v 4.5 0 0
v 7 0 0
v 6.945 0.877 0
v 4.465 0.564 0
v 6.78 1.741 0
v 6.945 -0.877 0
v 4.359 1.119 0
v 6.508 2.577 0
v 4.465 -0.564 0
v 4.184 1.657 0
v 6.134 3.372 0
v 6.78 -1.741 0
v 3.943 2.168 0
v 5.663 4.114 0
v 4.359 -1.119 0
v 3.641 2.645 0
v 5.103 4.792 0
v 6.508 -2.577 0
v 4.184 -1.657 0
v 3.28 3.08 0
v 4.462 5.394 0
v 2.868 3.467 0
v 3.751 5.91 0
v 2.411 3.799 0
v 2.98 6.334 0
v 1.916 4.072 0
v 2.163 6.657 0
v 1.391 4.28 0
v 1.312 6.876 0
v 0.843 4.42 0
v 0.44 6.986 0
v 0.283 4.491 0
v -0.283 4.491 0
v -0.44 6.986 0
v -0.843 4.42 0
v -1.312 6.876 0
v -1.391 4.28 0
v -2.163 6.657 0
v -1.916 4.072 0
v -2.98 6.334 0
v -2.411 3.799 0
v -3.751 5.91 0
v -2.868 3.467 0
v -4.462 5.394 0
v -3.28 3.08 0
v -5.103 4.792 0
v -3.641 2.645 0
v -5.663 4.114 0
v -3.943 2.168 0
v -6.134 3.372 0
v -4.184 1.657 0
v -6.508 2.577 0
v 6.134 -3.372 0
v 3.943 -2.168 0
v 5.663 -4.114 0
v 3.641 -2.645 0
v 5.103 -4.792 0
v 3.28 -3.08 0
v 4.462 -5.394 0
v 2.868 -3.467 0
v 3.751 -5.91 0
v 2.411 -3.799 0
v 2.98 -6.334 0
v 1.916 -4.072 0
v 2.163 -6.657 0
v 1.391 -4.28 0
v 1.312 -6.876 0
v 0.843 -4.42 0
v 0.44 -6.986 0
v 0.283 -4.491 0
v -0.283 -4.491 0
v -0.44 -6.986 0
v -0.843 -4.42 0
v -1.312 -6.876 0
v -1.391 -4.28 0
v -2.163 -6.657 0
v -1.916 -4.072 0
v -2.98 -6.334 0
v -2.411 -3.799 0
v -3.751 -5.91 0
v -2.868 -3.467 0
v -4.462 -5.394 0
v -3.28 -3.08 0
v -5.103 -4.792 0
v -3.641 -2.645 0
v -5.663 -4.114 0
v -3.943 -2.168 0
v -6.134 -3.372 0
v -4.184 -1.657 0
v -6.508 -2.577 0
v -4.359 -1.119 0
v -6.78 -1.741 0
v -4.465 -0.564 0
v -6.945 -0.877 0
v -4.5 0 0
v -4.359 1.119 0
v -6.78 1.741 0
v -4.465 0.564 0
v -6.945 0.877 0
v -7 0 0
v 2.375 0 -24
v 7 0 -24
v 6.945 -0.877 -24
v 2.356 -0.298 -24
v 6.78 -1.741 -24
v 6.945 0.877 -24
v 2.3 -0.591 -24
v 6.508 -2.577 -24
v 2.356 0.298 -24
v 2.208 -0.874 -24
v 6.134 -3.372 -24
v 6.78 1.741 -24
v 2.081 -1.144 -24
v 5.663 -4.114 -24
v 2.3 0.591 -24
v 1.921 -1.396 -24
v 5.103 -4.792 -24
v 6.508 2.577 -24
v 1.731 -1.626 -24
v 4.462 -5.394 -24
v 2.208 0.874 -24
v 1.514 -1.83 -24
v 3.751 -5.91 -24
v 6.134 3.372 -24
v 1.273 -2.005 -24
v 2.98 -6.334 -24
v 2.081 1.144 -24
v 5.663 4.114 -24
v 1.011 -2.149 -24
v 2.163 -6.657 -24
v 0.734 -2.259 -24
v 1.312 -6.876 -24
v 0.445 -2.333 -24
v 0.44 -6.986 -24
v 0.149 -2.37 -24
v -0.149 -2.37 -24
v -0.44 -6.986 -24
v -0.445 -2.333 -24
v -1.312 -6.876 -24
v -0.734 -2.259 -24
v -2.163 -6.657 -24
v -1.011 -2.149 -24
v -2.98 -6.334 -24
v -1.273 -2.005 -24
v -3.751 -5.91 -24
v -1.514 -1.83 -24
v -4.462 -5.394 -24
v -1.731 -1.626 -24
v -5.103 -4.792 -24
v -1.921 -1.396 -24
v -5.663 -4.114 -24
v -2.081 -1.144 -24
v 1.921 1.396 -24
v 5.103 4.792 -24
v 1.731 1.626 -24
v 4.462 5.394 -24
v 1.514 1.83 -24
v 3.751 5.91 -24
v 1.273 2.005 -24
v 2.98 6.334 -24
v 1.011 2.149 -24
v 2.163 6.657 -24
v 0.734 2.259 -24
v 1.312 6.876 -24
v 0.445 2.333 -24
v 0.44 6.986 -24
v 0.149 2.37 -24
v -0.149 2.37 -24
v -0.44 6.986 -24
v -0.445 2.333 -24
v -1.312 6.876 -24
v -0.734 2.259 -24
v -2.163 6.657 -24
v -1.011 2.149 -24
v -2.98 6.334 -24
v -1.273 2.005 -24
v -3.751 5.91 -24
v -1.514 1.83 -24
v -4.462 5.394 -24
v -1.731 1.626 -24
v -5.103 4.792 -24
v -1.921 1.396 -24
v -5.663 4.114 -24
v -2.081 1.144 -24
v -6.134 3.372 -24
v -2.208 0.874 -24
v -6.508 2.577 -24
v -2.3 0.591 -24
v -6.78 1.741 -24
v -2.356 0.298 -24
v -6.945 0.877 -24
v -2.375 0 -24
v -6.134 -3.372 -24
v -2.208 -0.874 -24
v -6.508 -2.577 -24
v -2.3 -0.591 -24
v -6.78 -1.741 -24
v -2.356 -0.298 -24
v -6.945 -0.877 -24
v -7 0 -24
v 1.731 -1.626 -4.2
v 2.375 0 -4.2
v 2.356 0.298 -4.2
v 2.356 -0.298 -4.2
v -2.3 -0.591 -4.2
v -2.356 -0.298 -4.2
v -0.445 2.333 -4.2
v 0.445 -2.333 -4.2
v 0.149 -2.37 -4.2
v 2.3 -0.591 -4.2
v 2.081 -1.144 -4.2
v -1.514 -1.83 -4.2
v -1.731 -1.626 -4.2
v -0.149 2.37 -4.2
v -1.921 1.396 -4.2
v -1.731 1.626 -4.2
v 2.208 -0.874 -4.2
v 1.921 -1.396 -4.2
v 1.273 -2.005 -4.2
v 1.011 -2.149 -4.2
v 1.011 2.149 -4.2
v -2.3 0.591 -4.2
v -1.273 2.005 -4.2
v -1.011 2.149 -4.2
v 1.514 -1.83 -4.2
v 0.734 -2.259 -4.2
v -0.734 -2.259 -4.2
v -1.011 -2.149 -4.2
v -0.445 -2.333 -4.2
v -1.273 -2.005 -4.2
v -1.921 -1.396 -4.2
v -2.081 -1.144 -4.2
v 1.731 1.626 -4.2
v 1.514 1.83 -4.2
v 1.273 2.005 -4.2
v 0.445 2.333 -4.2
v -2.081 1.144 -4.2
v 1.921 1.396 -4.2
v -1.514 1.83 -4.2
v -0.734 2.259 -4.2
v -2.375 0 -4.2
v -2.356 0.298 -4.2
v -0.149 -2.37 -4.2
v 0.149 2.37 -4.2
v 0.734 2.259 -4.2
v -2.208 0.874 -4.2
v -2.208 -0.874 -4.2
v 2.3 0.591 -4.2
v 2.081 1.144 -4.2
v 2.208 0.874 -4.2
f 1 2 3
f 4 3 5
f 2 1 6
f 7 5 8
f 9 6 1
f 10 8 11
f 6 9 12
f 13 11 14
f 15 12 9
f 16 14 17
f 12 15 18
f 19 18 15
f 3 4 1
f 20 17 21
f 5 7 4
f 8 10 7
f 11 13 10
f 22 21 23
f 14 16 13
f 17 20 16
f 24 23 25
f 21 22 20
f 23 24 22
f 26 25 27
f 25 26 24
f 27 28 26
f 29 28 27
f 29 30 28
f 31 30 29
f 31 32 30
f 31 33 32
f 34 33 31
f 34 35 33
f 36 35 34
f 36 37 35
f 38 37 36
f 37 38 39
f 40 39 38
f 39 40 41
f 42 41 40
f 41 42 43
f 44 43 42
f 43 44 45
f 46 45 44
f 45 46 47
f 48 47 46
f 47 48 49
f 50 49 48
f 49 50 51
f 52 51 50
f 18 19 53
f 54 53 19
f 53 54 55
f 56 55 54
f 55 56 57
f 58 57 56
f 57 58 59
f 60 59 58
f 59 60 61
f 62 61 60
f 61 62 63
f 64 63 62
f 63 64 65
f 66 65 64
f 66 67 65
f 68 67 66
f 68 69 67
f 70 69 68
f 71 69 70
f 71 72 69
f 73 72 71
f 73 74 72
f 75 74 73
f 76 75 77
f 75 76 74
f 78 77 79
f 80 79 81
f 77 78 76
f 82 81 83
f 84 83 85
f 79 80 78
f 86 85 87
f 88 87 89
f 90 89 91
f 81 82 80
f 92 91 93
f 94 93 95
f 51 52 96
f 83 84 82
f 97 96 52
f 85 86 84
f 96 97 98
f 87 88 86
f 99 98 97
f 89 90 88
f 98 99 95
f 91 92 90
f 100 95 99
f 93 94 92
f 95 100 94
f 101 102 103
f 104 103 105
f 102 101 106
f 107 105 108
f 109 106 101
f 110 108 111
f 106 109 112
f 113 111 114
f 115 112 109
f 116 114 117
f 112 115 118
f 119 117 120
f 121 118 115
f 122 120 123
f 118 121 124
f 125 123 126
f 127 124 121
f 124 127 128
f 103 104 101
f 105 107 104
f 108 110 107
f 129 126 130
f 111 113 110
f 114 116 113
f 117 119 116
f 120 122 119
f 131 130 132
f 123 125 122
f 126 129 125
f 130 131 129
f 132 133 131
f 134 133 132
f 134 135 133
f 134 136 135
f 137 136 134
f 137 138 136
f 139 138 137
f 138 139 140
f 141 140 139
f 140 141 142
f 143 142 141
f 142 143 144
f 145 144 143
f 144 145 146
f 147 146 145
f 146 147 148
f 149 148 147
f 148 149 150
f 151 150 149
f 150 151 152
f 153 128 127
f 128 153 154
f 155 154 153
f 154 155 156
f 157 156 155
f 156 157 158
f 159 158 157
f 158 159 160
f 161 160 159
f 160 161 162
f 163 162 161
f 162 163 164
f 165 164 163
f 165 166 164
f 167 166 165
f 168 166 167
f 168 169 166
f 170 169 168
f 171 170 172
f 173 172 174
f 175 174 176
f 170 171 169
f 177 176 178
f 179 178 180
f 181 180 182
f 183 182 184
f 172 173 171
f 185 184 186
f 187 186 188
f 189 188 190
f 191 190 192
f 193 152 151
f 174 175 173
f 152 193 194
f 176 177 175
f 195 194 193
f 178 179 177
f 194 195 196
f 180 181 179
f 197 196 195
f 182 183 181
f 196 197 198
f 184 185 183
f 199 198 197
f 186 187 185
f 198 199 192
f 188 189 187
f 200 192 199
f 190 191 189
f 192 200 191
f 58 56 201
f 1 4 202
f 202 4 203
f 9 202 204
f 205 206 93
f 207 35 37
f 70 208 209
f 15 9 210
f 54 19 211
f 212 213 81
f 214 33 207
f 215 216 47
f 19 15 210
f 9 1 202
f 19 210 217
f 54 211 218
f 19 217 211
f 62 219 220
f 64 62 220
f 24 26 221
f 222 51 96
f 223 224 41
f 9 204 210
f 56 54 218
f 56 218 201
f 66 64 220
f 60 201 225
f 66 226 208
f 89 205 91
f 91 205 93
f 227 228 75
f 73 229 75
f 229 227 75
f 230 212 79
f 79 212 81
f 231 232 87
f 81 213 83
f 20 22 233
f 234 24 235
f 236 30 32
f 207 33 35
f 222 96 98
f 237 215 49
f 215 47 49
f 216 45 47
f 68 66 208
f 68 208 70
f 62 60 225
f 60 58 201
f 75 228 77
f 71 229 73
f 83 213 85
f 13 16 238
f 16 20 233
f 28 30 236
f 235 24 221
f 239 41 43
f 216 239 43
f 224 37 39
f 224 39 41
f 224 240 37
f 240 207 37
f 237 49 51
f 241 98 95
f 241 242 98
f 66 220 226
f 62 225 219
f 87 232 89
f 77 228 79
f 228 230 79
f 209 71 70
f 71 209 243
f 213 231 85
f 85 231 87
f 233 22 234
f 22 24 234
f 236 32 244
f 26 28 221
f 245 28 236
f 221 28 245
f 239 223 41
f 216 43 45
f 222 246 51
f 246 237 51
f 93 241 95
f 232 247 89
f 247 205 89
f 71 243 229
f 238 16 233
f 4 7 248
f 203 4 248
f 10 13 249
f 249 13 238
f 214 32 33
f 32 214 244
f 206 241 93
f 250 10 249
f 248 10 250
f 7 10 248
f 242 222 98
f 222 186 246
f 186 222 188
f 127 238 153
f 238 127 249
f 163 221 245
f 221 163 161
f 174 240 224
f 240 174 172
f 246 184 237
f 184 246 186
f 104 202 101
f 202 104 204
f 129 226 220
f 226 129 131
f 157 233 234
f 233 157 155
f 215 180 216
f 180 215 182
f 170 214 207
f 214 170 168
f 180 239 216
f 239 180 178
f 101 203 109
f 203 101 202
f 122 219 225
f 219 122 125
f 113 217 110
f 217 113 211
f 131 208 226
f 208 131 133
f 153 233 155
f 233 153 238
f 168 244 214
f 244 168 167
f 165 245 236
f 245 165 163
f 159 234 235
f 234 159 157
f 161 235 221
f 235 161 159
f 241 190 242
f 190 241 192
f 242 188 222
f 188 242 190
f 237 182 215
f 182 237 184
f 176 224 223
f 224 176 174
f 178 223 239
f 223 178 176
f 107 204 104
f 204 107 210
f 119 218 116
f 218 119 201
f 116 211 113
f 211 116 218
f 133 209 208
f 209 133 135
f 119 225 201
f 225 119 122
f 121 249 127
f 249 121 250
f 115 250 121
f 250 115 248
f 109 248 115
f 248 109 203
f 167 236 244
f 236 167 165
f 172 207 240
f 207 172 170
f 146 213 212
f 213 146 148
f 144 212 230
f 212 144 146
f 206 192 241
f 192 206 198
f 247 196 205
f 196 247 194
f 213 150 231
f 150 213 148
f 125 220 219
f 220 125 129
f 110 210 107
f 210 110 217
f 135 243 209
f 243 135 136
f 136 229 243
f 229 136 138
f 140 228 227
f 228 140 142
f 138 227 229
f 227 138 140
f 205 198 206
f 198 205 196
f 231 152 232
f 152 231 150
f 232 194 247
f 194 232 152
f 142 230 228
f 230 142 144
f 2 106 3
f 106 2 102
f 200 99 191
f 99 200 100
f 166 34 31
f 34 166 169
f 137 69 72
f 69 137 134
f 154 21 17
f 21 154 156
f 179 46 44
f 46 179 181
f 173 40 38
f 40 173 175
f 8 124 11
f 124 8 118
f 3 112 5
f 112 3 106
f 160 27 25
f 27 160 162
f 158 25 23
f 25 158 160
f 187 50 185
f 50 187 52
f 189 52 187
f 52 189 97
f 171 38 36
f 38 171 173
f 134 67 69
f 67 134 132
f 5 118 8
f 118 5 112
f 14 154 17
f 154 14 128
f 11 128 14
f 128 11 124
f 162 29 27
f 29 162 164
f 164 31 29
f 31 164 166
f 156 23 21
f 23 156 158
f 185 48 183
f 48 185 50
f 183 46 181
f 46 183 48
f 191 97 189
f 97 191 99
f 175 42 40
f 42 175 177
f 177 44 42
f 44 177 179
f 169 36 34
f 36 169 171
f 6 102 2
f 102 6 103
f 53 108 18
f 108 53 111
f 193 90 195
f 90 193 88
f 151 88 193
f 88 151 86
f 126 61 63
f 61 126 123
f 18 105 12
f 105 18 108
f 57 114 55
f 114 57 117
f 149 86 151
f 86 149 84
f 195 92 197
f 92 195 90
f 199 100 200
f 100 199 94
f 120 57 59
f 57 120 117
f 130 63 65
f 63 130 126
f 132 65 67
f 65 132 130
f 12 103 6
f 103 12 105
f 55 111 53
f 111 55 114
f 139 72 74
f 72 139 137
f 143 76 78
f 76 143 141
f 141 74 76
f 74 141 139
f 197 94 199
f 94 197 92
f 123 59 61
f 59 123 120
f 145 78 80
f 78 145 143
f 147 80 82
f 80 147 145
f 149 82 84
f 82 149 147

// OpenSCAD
$fn = 50;


difference() {
	union() {
		translate(v = [0, 0, -24.0000000000]) {
			cylinder(h = 24, r = 7.0000000000);
		}
		cylinder(h = 0, r = 10.0000000000);
	}
	union() {
		translate(v = [0, 0, 0]) {
			rotate(a = [0, 0, 0]) {
				difference() {
					union() {
						#translate(v = [0, 0, -24.0000000000]) {
							cylinder(h = 24, r = 2.2500000000);
						}
						#translate(v = [0, 0, -4.2000000000]) {
							cylinder(h = 4.2000000000, r1 = 2.3750000000, r2 = 4.5000000000);
						}
						#translate(v = [0, 0, -24.0000000000]) {
							cylinder(h = 24, r = 2.3750000000);
						}
						#translate(v = [0, 0, -24.0000000000]) {
							cylinder(h = 24, r = 2.2500000000);
						}
					}
					union();
				}
			}
		}
	}
}
